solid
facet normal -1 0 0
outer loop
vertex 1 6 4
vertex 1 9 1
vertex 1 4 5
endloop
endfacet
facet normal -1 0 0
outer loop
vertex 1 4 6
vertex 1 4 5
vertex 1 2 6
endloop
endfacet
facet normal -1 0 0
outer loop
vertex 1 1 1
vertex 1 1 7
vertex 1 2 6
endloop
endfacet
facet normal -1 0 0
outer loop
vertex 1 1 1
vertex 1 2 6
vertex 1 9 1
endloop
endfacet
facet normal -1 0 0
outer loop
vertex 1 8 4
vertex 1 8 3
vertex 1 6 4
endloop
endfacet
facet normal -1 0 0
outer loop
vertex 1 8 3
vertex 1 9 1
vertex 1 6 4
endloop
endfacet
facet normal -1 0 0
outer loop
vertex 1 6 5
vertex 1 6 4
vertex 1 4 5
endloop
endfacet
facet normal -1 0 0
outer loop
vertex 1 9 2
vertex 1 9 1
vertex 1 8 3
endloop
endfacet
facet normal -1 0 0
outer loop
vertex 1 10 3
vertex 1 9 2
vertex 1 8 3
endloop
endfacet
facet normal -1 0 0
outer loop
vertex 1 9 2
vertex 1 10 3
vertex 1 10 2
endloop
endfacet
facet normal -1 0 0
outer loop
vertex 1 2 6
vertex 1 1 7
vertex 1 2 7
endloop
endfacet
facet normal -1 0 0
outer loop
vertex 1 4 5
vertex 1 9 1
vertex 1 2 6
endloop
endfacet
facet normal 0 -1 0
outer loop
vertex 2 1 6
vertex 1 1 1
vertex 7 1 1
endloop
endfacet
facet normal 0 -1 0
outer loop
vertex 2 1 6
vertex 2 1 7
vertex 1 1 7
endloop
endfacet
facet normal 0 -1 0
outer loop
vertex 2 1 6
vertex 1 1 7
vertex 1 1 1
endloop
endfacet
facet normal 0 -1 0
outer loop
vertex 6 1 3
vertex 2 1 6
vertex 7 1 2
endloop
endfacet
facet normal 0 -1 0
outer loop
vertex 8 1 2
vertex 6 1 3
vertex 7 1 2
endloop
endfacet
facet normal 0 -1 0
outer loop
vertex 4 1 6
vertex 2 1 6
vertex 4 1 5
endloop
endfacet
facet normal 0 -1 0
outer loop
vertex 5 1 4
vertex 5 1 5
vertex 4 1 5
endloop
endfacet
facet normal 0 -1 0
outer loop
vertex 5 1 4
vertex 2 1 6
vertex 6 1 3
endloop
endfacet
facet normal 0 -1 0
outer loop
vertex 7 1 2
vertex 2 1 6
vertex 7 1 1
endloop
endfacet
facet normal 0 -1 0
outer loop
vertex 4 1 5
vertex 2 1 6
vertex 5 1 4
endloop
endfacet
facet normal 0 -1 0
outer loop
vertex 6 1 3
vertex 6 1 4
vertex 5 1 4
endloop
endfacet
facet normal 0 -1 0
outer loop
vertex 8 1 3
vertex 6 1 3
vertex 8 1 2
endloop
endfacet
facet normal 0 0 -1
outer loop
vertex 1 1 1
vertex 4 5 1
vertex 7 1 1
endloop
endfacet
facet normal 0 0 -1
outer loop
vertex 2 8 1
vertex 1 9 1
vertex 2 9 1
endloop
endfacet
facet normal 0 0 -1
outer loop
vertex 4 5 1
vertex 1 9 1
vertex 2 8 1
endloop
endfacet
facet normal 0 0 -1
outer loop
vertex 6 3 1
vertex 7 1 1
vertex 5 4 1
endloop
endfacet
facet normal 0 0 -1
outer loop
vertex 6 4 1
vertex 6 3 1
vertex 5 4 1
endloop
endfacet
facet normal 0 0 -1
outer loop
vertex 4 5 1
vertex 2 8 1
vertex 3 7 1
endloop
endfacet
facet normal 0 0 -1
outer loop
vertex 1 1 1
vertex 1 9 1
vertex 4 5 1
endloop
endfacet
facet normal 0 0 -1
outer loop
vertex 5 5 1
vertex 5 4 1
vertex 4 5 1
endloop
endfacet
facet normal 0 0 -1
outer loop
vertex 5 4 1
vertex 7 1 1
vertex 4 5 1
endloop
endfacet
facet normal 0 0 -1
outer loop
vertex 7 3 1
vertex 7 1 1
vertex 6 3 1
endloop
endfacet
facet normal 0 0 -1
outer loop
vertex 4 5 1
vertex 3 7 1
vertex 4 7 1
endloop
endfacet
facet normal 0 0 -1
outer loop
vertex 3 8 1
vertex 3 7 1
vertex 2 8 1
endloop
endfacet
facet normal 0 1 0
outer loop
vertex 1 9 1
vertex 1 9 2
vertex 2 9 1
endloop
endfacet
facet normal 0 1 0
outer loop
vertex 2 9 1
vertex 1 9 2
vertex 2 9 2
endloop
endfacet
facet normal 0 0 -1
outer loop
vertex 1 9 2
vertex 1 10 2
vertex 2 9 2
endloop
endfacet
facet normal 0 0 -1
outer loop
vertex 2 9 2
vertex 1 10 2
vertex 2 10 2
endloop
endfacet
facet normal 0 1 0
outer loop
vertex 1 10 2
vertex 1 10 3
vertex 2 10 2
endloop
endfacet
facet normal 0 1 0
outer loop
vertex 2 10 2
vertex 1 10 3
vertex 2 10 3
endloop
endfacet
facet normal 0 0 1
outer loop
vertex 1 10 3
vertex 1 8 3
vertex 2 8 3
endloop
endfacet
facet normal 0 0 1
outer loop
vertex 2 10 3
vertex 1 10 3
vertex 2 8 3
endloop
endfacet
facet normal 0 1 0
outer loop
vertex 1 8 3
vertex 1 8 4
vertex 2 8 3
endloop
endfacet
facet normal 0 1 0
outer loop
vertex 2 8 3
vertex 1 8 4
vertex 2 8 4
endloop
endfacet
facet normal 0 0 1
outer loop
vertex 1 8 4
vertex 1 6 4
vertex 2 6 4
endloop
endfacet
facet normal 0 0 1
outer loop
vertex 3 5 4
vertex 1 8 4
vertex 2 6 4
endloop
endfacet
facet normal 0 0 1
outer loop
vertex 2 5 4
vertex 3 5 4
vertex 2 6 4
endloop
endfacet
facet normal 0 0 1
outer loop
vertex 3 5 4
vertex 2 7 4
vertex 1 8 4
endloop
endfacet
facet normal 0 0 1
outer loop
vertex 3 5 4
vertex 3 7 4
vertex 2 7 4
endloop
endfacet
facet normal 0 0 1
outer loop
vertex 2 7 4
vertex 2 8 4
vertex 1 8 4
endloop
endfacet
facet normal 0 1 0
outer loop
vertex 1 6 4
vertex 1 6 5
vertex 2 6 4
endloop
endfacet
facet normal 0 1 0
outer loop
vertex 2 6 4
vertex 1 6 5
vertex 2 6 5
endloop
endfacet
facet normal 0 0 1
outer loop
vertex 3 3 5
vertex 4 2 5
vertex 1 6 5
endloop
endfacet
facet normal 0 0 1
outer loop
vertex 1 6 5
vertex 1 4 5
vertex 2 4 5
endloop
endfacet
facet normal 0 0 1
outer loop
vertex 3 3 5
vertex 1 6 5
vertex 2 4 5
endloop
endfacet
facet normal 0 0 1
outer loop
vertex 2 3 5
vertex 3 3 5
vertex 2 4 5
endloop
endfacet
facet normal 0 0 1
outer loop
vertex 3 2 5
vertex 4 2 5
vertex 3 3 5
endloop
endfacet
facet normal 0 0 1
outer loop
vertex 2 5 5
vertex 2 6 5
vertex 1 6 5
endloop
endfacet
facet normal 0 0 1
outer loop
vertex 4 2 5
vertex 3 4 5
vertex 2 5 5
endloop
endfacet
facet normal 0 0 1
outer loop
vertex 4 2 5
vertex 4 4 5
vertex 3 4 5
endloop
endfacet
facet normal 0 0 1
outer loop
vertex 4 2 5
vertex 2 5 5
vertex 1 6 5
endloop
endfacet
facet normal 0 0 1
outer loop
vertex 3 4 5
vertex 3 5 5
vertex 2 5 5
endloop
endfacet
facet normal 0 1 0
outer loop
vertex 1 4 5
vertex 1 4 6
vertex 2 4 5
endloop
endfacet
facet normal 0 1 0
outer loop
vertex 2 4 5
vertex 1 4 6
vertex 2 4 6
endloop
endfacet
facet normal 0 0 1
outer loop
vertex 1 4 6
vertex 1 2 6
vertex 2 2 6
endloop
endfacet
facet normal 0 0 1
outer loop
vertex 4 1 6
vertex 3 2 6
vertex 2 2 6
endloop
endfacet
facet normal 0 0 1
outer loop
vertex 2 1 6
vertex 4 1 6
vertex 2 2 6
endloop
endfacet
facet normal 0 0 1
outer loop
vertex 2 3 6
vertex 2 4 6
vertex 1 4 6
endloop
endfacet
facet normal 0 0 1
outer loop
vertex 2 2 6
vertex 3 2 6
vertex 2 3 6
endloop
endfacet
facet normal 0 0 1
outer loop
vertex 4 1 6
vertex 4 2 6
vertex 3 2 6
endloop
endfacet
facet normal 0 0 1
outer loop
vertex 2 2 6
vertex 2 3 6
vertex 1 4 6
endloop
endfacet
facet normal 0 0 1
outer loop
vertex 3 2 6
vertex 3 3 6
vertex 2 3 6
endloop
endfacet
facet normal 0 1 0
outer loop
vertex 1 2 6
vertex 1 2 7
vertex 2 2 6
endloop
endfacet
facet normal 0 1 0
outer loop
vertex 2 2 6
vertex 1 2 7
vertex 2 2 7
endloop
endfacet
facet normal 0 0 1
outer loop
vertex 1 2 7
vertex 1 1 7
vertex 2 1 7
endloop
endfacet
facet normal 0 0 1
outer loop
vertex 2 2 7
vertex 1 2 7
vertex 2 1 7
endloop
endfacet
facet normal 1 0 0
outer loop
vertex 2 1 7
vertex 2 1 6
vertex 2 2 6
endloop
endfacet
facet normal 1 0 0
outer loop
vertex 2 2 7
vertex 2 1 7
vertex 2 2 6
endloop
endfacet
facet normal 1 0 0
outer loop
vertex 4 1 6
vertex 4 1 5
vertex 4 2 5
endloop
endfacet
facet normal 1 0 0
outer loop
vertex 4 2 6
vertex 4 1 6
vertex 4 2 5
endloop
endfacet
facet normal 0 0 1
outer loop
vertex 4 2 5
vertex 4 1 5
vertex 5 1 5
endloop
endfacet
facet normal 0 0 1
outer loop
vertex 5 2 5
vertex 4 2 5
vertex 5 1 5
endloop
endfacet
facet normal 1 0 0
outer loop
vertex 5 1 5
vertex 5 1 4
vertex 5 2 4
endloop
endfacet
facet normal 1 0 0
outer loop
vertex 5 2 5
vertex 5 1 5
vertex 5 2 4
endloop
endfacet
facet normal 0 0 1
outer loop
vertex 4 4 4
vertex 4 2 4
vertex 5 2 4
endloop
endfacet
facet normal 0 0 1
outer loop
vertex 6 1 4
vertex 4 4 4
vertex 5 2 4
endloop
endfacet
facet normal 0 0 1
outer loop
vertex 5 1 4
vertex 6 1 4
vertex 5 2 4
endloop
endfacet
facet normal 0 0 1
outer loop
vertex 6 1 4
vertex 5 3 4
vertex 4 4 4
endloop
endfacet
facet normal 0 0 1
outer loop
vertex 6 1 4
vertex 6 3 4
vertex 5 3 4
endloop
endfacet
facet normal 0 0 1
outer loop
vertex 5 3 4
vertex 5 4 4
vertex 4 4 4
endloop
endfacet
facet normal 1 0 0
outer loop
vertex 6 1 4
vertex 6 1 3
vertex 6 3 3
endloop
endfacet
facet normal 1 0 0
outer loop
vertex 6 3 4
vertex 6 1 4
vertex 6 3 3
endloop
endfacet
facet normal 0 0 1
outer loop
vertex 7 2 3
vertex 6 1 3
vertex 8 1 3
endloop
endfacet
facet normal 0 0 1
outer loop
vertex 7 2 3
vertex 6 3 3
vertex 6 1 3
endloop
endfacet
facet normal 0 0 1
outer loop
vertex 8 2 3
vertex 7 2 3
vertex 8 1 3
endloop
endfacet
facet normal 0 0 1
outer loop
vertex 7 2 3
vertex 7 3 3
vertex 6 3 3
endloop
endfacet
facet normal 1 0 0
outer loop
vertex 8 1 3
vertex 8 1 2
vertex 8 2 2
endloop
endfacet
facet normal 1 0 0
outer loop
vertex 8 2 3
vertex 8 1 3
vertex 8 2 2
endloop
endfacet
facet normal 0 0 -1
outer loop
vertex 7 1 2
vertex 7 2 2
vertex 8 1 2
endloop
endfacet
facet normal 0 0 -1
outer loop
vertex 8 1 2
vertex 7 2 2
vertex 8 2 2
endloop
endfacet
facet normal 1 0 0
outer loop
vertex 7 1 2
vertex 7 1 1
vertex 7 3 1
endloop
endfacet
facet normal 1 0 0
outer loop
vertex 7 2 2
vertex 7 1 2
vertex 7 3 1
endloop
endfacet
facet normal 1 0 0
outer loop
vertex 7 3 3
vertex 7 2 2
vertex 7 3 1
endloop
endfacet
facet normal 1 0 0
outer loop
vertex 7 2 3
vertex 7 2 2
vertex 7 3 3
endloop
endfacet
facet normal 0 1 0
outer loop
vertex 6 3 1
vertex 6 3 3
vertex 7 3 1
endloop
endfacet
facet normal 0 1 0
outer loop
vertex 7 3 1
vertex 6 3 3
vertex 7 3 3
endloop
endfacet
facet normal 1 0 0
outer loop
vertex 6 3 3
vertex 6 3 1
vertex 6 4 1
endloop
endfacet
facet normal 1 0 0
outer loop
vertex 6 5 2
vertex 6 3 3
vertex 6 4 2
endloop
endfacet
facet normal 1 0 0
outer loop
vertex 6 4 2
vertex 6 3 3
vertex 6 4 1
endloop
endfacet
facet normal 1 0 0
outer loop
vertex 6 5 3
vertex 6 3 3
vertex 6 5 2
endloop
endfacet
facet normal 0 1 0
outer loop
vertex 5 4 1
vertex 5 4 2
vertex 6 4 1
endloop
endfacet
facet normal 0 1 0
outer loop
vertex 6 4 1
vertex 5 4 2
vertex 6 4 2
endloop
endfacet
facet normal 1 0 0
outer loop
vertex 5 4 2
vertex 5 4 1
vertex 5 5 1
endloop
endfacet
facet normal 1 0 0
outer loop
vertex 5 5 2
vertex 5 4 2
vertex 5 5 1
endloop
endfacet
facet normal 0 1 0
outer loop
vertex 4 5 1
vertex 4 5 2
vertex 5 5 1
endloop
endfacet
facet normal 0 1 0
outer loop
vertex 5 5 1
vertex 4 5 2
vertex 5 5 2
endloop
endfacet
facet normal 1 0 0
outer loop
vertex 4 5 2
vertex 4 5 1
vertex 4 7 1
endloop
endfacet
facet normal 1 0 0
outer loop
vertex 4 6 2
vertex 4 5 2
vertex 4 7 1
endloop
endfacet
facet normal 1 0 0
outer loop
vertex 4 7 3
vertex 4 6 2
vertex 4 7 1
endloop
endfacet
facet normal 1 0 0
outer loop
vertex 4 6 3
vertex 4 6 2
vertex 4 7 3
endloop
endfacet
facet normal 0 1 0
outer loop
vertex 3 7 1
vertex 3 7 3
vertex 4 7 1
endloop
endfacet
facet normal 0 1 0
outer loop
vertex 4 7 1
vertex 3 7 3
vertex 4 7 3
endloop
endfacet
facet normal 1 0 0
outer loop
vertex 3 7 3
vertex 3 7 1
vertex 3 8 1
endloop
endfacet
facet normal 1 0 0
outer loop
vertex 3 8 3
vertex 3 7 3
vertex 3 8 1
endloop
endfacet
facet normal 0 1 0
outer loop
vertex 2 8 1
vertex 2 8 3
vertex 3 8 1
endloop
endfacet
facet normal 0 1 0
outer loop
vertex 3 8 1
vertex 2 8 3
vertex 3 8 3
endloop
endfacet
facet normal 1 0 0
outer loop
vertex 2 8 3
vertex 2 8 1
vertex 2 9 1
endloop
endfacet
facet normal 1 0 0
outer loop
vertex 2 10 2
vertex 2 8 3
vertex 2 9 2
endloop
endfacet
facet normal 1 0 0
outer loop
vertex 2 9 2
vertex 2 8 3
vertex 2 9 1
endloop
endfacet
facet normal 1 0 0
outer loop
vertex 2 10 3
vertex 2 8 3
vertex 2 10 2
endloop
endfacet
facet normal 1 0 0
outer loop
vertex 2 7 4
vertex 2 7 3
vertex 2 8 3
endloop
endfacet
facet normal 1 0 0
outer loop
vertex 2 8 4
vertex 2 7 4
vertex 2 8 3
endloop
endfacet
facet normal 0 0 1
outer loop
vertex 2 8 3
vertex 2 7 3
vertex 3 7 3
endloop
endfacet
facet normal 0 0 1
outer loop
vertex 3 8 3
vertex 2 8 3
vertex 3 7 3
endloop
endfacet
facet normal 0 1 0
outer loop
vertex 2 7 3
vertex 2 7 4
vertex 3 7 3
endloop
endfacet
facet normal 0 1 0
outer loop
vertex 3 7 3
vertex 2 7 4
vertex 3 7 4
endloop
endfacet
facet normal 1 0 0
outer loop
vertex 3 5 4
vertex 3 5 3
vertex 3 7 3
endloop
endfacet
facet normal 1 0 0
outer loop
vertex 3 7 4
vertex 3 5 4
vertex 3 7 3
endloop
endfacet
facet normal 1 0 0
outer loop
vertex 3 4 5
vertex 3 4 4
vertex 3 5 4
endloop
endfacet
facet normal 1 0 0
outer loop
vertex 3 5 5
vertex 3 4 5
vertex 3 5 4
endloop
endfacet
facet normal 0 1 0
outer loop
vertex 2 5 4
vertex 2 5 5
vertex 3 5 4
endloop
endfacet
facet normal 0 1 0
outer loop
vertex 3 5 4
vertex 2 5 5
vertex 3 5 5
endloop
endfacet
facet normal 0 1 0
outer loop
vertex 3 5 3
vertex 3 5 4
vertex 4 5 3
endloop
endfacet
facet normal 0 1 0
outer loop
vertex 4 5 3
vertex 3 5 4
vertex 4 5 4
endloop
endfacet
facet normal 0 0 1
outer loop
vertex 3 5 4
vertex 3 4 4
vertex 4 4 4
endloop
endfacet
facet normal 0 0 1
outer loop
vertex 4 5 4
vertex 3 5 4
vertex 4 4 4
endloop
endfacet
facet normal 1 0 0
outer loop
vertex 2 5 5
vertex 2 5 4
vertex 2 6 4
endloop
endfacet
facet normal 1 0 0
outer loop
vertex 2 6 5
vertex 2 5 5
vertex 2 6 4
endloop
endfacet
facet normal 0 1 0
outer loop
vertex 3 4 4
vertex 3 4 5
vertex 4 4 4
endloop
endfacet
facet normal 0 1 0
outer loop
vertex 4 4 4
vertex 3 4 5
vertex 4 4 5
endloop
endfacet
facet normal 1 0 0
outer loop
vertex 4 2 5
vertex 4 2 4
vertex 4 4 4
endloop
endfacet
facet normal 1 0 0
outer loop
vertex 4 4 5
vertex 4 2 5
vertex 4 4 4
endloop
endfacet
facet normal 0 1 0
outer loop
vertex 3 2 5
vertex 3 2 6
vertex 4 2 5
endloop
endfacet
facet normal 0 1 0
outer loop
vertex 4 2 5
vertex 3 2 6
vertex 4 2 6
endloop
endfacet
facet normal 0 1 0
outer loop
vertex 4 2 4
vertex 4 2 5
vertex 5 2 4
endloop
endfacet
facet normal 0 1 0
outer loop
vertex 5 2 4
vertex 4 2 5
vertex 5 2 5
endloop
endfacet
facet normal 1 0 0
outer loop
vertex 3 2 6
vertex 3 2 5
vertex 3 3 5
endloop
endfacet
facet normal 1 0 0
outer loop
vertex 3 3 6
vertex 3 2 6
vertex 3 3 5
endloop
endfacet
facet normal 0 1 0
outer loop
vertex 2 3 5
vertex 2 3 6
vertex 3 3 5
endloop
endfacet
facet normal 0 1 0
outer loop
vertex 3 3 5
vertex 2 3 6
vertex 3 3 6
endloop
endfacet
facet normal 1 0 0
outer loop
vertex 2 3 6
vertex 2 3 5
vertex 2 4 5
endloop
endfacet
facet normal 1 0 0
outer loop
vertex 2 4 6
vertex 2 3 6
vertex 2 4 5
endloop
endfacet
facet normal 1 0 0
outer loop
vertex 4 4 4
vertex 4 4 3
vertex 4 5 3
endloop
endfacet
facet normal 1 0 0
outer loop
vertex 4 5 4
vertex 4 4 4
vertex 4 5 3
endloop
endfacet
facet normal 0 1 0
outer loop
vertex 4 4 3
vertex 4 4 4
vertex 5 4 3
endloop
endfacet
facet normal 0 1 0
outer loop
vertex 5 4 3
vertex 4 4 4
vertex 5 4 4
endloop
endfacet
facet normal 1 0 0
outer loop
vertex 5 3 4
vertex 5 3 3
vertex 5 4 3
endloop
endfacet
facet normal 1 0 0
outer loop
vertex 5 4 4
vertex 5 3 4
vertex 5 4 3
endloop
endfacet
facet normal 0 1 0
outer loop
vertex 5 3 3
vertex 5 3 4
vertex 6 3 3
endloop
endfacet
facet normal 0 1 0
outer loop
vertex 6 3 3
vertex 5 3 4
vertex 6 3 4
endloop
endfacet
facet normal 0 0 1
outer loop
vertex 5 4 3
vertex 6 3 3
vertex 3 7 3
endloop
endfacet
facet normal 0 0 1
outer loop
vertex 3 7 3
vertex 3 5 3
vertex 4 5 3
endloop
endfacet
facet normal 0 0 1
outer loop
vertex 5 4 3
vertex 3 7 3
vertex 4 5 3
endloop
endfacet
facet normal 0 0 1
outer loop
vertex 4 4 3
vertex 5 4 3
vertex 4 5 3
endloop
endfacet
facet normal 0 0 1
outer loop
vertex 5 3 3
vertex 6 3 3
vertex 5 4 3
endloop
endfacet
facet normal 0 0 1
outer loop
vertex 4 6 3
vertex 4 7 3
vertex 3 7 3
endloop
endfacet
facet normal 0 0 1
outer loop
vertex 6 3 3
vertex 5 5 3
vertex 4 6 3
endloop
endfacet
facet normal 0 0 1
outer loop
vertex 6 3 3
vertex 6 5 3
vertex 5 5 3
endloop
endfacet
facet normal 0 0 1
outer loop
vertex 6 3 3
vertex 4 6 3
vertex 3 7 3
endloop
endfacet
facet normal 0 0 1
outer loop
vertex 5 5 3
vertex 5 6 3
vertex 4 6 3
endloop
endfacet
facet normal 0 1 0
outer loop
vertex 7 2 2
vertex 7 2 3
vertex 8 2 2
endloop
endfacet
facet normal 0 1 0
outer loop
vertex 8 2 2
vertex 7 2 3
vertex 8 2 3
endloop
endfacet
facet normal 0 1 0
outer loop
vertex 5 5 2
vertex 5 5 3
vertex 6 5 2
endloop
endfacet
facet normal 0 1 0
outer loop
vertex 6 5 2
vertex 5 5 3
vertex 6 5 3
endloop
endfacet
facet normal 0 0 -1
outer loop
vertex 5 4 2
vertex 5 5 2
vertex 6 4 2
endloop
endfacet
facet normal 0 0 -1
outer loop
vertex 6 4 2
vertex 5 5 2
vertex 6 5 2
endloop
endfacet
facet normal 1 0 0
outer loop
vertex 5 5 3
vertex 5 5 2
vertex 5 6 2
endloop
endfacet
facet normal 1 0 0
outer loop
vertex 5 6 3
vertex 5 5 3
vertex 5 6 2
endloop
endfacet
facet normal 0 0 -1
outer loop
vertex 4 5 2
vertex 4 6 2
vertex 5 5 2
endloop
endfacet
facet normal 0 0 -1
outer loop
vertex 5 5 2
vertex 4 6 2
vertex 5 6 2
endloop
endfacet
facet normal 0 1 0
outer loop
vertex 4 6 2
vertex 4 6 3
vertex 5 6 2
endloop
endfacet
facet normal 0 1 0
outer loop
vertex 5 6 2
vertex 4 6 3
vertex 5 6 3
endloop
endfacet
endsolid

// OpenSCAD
// Create matrix
mr = 	[
[1,1,1],
[1,1,2],
[1,1,3],
[1,1,4],
[1,1,5],
[1,1,6],
[1,2,1],
[1,2,2],
[1,2,3],
[1,2,4],
[1,2,5],
[1,3,1],
[1,3,2],
[1,3,3],
[1,3,4],
[1,3,5],
[1,4,1],
[1,4,2],
[1,4,3],
[1,4,4],
[1,5,1],
[1,5,2],
[1,5,3],
[1,5,4],
[1,6,1],
[1,6,2],
[1,6,3],
[1,7,1],
[1,7,2],
[1,7,3],
[1,8,1],
[1,8,2],
[1,9,2],
[2,1,1],
[2,1,2],
[2,1,3],
[2,1,4],
[2,1,5],
[2,2,1],
[2,2,2],
[2,2,3],
[2,2,4],
[2,2,5],
[2,3,1],
[2,3,2],
[2,3,3],
[2,3,4],
[2,4,1],
[2,4,2],
[2,4,3],
[2,4,4],
[2,5,1],
[2,5,2],
[2,5,3],
[2,6,1],
[2,6,2],
[2,6,3],
[2,7,1],
[2,7,2],
[3,1,1],
[3,1,2],
[3,1,3],
[3,1,4],
[3,1,5],
[3,2,1],
[3,2,2],
[3,2,3],
[3,2,4],
[3,3,1],
[3,3,2],
[3,3,3],
[3,3,4],
[3,4,1],
[3,4,2],
[3,4,3],
[3,5,1],
[3,5,2],
[3,6,1],
[3,6,2],
[4,1,1],
[4,1,2],
[4,1,3],
[4,1,4],
[4,2,1],
[4,2,2],
[4,2,3],
[4,3,1],
[4,3,2],
[4,3,3],
[4,4,1],
[4,4,2],
[4,5,2],
[5,1,1],
[5,1,2],
[5,1,3],
[5,2,1],
[5,2,2],
[5,2,3],
[5,3,1],
[5,3,2],
[5,4,2],
[6,1,1],
[6,1,2],
[6,2,1],
[6,2,2],
[7,1,2],
		];
// Draw cubes
// Z-axis
for (a =[0:len(mr)-1]){
	color([1,0,0]) translate([mr[a][0], mr[a][1], mr[a][2]])cube([1,1,1]);
			
}
